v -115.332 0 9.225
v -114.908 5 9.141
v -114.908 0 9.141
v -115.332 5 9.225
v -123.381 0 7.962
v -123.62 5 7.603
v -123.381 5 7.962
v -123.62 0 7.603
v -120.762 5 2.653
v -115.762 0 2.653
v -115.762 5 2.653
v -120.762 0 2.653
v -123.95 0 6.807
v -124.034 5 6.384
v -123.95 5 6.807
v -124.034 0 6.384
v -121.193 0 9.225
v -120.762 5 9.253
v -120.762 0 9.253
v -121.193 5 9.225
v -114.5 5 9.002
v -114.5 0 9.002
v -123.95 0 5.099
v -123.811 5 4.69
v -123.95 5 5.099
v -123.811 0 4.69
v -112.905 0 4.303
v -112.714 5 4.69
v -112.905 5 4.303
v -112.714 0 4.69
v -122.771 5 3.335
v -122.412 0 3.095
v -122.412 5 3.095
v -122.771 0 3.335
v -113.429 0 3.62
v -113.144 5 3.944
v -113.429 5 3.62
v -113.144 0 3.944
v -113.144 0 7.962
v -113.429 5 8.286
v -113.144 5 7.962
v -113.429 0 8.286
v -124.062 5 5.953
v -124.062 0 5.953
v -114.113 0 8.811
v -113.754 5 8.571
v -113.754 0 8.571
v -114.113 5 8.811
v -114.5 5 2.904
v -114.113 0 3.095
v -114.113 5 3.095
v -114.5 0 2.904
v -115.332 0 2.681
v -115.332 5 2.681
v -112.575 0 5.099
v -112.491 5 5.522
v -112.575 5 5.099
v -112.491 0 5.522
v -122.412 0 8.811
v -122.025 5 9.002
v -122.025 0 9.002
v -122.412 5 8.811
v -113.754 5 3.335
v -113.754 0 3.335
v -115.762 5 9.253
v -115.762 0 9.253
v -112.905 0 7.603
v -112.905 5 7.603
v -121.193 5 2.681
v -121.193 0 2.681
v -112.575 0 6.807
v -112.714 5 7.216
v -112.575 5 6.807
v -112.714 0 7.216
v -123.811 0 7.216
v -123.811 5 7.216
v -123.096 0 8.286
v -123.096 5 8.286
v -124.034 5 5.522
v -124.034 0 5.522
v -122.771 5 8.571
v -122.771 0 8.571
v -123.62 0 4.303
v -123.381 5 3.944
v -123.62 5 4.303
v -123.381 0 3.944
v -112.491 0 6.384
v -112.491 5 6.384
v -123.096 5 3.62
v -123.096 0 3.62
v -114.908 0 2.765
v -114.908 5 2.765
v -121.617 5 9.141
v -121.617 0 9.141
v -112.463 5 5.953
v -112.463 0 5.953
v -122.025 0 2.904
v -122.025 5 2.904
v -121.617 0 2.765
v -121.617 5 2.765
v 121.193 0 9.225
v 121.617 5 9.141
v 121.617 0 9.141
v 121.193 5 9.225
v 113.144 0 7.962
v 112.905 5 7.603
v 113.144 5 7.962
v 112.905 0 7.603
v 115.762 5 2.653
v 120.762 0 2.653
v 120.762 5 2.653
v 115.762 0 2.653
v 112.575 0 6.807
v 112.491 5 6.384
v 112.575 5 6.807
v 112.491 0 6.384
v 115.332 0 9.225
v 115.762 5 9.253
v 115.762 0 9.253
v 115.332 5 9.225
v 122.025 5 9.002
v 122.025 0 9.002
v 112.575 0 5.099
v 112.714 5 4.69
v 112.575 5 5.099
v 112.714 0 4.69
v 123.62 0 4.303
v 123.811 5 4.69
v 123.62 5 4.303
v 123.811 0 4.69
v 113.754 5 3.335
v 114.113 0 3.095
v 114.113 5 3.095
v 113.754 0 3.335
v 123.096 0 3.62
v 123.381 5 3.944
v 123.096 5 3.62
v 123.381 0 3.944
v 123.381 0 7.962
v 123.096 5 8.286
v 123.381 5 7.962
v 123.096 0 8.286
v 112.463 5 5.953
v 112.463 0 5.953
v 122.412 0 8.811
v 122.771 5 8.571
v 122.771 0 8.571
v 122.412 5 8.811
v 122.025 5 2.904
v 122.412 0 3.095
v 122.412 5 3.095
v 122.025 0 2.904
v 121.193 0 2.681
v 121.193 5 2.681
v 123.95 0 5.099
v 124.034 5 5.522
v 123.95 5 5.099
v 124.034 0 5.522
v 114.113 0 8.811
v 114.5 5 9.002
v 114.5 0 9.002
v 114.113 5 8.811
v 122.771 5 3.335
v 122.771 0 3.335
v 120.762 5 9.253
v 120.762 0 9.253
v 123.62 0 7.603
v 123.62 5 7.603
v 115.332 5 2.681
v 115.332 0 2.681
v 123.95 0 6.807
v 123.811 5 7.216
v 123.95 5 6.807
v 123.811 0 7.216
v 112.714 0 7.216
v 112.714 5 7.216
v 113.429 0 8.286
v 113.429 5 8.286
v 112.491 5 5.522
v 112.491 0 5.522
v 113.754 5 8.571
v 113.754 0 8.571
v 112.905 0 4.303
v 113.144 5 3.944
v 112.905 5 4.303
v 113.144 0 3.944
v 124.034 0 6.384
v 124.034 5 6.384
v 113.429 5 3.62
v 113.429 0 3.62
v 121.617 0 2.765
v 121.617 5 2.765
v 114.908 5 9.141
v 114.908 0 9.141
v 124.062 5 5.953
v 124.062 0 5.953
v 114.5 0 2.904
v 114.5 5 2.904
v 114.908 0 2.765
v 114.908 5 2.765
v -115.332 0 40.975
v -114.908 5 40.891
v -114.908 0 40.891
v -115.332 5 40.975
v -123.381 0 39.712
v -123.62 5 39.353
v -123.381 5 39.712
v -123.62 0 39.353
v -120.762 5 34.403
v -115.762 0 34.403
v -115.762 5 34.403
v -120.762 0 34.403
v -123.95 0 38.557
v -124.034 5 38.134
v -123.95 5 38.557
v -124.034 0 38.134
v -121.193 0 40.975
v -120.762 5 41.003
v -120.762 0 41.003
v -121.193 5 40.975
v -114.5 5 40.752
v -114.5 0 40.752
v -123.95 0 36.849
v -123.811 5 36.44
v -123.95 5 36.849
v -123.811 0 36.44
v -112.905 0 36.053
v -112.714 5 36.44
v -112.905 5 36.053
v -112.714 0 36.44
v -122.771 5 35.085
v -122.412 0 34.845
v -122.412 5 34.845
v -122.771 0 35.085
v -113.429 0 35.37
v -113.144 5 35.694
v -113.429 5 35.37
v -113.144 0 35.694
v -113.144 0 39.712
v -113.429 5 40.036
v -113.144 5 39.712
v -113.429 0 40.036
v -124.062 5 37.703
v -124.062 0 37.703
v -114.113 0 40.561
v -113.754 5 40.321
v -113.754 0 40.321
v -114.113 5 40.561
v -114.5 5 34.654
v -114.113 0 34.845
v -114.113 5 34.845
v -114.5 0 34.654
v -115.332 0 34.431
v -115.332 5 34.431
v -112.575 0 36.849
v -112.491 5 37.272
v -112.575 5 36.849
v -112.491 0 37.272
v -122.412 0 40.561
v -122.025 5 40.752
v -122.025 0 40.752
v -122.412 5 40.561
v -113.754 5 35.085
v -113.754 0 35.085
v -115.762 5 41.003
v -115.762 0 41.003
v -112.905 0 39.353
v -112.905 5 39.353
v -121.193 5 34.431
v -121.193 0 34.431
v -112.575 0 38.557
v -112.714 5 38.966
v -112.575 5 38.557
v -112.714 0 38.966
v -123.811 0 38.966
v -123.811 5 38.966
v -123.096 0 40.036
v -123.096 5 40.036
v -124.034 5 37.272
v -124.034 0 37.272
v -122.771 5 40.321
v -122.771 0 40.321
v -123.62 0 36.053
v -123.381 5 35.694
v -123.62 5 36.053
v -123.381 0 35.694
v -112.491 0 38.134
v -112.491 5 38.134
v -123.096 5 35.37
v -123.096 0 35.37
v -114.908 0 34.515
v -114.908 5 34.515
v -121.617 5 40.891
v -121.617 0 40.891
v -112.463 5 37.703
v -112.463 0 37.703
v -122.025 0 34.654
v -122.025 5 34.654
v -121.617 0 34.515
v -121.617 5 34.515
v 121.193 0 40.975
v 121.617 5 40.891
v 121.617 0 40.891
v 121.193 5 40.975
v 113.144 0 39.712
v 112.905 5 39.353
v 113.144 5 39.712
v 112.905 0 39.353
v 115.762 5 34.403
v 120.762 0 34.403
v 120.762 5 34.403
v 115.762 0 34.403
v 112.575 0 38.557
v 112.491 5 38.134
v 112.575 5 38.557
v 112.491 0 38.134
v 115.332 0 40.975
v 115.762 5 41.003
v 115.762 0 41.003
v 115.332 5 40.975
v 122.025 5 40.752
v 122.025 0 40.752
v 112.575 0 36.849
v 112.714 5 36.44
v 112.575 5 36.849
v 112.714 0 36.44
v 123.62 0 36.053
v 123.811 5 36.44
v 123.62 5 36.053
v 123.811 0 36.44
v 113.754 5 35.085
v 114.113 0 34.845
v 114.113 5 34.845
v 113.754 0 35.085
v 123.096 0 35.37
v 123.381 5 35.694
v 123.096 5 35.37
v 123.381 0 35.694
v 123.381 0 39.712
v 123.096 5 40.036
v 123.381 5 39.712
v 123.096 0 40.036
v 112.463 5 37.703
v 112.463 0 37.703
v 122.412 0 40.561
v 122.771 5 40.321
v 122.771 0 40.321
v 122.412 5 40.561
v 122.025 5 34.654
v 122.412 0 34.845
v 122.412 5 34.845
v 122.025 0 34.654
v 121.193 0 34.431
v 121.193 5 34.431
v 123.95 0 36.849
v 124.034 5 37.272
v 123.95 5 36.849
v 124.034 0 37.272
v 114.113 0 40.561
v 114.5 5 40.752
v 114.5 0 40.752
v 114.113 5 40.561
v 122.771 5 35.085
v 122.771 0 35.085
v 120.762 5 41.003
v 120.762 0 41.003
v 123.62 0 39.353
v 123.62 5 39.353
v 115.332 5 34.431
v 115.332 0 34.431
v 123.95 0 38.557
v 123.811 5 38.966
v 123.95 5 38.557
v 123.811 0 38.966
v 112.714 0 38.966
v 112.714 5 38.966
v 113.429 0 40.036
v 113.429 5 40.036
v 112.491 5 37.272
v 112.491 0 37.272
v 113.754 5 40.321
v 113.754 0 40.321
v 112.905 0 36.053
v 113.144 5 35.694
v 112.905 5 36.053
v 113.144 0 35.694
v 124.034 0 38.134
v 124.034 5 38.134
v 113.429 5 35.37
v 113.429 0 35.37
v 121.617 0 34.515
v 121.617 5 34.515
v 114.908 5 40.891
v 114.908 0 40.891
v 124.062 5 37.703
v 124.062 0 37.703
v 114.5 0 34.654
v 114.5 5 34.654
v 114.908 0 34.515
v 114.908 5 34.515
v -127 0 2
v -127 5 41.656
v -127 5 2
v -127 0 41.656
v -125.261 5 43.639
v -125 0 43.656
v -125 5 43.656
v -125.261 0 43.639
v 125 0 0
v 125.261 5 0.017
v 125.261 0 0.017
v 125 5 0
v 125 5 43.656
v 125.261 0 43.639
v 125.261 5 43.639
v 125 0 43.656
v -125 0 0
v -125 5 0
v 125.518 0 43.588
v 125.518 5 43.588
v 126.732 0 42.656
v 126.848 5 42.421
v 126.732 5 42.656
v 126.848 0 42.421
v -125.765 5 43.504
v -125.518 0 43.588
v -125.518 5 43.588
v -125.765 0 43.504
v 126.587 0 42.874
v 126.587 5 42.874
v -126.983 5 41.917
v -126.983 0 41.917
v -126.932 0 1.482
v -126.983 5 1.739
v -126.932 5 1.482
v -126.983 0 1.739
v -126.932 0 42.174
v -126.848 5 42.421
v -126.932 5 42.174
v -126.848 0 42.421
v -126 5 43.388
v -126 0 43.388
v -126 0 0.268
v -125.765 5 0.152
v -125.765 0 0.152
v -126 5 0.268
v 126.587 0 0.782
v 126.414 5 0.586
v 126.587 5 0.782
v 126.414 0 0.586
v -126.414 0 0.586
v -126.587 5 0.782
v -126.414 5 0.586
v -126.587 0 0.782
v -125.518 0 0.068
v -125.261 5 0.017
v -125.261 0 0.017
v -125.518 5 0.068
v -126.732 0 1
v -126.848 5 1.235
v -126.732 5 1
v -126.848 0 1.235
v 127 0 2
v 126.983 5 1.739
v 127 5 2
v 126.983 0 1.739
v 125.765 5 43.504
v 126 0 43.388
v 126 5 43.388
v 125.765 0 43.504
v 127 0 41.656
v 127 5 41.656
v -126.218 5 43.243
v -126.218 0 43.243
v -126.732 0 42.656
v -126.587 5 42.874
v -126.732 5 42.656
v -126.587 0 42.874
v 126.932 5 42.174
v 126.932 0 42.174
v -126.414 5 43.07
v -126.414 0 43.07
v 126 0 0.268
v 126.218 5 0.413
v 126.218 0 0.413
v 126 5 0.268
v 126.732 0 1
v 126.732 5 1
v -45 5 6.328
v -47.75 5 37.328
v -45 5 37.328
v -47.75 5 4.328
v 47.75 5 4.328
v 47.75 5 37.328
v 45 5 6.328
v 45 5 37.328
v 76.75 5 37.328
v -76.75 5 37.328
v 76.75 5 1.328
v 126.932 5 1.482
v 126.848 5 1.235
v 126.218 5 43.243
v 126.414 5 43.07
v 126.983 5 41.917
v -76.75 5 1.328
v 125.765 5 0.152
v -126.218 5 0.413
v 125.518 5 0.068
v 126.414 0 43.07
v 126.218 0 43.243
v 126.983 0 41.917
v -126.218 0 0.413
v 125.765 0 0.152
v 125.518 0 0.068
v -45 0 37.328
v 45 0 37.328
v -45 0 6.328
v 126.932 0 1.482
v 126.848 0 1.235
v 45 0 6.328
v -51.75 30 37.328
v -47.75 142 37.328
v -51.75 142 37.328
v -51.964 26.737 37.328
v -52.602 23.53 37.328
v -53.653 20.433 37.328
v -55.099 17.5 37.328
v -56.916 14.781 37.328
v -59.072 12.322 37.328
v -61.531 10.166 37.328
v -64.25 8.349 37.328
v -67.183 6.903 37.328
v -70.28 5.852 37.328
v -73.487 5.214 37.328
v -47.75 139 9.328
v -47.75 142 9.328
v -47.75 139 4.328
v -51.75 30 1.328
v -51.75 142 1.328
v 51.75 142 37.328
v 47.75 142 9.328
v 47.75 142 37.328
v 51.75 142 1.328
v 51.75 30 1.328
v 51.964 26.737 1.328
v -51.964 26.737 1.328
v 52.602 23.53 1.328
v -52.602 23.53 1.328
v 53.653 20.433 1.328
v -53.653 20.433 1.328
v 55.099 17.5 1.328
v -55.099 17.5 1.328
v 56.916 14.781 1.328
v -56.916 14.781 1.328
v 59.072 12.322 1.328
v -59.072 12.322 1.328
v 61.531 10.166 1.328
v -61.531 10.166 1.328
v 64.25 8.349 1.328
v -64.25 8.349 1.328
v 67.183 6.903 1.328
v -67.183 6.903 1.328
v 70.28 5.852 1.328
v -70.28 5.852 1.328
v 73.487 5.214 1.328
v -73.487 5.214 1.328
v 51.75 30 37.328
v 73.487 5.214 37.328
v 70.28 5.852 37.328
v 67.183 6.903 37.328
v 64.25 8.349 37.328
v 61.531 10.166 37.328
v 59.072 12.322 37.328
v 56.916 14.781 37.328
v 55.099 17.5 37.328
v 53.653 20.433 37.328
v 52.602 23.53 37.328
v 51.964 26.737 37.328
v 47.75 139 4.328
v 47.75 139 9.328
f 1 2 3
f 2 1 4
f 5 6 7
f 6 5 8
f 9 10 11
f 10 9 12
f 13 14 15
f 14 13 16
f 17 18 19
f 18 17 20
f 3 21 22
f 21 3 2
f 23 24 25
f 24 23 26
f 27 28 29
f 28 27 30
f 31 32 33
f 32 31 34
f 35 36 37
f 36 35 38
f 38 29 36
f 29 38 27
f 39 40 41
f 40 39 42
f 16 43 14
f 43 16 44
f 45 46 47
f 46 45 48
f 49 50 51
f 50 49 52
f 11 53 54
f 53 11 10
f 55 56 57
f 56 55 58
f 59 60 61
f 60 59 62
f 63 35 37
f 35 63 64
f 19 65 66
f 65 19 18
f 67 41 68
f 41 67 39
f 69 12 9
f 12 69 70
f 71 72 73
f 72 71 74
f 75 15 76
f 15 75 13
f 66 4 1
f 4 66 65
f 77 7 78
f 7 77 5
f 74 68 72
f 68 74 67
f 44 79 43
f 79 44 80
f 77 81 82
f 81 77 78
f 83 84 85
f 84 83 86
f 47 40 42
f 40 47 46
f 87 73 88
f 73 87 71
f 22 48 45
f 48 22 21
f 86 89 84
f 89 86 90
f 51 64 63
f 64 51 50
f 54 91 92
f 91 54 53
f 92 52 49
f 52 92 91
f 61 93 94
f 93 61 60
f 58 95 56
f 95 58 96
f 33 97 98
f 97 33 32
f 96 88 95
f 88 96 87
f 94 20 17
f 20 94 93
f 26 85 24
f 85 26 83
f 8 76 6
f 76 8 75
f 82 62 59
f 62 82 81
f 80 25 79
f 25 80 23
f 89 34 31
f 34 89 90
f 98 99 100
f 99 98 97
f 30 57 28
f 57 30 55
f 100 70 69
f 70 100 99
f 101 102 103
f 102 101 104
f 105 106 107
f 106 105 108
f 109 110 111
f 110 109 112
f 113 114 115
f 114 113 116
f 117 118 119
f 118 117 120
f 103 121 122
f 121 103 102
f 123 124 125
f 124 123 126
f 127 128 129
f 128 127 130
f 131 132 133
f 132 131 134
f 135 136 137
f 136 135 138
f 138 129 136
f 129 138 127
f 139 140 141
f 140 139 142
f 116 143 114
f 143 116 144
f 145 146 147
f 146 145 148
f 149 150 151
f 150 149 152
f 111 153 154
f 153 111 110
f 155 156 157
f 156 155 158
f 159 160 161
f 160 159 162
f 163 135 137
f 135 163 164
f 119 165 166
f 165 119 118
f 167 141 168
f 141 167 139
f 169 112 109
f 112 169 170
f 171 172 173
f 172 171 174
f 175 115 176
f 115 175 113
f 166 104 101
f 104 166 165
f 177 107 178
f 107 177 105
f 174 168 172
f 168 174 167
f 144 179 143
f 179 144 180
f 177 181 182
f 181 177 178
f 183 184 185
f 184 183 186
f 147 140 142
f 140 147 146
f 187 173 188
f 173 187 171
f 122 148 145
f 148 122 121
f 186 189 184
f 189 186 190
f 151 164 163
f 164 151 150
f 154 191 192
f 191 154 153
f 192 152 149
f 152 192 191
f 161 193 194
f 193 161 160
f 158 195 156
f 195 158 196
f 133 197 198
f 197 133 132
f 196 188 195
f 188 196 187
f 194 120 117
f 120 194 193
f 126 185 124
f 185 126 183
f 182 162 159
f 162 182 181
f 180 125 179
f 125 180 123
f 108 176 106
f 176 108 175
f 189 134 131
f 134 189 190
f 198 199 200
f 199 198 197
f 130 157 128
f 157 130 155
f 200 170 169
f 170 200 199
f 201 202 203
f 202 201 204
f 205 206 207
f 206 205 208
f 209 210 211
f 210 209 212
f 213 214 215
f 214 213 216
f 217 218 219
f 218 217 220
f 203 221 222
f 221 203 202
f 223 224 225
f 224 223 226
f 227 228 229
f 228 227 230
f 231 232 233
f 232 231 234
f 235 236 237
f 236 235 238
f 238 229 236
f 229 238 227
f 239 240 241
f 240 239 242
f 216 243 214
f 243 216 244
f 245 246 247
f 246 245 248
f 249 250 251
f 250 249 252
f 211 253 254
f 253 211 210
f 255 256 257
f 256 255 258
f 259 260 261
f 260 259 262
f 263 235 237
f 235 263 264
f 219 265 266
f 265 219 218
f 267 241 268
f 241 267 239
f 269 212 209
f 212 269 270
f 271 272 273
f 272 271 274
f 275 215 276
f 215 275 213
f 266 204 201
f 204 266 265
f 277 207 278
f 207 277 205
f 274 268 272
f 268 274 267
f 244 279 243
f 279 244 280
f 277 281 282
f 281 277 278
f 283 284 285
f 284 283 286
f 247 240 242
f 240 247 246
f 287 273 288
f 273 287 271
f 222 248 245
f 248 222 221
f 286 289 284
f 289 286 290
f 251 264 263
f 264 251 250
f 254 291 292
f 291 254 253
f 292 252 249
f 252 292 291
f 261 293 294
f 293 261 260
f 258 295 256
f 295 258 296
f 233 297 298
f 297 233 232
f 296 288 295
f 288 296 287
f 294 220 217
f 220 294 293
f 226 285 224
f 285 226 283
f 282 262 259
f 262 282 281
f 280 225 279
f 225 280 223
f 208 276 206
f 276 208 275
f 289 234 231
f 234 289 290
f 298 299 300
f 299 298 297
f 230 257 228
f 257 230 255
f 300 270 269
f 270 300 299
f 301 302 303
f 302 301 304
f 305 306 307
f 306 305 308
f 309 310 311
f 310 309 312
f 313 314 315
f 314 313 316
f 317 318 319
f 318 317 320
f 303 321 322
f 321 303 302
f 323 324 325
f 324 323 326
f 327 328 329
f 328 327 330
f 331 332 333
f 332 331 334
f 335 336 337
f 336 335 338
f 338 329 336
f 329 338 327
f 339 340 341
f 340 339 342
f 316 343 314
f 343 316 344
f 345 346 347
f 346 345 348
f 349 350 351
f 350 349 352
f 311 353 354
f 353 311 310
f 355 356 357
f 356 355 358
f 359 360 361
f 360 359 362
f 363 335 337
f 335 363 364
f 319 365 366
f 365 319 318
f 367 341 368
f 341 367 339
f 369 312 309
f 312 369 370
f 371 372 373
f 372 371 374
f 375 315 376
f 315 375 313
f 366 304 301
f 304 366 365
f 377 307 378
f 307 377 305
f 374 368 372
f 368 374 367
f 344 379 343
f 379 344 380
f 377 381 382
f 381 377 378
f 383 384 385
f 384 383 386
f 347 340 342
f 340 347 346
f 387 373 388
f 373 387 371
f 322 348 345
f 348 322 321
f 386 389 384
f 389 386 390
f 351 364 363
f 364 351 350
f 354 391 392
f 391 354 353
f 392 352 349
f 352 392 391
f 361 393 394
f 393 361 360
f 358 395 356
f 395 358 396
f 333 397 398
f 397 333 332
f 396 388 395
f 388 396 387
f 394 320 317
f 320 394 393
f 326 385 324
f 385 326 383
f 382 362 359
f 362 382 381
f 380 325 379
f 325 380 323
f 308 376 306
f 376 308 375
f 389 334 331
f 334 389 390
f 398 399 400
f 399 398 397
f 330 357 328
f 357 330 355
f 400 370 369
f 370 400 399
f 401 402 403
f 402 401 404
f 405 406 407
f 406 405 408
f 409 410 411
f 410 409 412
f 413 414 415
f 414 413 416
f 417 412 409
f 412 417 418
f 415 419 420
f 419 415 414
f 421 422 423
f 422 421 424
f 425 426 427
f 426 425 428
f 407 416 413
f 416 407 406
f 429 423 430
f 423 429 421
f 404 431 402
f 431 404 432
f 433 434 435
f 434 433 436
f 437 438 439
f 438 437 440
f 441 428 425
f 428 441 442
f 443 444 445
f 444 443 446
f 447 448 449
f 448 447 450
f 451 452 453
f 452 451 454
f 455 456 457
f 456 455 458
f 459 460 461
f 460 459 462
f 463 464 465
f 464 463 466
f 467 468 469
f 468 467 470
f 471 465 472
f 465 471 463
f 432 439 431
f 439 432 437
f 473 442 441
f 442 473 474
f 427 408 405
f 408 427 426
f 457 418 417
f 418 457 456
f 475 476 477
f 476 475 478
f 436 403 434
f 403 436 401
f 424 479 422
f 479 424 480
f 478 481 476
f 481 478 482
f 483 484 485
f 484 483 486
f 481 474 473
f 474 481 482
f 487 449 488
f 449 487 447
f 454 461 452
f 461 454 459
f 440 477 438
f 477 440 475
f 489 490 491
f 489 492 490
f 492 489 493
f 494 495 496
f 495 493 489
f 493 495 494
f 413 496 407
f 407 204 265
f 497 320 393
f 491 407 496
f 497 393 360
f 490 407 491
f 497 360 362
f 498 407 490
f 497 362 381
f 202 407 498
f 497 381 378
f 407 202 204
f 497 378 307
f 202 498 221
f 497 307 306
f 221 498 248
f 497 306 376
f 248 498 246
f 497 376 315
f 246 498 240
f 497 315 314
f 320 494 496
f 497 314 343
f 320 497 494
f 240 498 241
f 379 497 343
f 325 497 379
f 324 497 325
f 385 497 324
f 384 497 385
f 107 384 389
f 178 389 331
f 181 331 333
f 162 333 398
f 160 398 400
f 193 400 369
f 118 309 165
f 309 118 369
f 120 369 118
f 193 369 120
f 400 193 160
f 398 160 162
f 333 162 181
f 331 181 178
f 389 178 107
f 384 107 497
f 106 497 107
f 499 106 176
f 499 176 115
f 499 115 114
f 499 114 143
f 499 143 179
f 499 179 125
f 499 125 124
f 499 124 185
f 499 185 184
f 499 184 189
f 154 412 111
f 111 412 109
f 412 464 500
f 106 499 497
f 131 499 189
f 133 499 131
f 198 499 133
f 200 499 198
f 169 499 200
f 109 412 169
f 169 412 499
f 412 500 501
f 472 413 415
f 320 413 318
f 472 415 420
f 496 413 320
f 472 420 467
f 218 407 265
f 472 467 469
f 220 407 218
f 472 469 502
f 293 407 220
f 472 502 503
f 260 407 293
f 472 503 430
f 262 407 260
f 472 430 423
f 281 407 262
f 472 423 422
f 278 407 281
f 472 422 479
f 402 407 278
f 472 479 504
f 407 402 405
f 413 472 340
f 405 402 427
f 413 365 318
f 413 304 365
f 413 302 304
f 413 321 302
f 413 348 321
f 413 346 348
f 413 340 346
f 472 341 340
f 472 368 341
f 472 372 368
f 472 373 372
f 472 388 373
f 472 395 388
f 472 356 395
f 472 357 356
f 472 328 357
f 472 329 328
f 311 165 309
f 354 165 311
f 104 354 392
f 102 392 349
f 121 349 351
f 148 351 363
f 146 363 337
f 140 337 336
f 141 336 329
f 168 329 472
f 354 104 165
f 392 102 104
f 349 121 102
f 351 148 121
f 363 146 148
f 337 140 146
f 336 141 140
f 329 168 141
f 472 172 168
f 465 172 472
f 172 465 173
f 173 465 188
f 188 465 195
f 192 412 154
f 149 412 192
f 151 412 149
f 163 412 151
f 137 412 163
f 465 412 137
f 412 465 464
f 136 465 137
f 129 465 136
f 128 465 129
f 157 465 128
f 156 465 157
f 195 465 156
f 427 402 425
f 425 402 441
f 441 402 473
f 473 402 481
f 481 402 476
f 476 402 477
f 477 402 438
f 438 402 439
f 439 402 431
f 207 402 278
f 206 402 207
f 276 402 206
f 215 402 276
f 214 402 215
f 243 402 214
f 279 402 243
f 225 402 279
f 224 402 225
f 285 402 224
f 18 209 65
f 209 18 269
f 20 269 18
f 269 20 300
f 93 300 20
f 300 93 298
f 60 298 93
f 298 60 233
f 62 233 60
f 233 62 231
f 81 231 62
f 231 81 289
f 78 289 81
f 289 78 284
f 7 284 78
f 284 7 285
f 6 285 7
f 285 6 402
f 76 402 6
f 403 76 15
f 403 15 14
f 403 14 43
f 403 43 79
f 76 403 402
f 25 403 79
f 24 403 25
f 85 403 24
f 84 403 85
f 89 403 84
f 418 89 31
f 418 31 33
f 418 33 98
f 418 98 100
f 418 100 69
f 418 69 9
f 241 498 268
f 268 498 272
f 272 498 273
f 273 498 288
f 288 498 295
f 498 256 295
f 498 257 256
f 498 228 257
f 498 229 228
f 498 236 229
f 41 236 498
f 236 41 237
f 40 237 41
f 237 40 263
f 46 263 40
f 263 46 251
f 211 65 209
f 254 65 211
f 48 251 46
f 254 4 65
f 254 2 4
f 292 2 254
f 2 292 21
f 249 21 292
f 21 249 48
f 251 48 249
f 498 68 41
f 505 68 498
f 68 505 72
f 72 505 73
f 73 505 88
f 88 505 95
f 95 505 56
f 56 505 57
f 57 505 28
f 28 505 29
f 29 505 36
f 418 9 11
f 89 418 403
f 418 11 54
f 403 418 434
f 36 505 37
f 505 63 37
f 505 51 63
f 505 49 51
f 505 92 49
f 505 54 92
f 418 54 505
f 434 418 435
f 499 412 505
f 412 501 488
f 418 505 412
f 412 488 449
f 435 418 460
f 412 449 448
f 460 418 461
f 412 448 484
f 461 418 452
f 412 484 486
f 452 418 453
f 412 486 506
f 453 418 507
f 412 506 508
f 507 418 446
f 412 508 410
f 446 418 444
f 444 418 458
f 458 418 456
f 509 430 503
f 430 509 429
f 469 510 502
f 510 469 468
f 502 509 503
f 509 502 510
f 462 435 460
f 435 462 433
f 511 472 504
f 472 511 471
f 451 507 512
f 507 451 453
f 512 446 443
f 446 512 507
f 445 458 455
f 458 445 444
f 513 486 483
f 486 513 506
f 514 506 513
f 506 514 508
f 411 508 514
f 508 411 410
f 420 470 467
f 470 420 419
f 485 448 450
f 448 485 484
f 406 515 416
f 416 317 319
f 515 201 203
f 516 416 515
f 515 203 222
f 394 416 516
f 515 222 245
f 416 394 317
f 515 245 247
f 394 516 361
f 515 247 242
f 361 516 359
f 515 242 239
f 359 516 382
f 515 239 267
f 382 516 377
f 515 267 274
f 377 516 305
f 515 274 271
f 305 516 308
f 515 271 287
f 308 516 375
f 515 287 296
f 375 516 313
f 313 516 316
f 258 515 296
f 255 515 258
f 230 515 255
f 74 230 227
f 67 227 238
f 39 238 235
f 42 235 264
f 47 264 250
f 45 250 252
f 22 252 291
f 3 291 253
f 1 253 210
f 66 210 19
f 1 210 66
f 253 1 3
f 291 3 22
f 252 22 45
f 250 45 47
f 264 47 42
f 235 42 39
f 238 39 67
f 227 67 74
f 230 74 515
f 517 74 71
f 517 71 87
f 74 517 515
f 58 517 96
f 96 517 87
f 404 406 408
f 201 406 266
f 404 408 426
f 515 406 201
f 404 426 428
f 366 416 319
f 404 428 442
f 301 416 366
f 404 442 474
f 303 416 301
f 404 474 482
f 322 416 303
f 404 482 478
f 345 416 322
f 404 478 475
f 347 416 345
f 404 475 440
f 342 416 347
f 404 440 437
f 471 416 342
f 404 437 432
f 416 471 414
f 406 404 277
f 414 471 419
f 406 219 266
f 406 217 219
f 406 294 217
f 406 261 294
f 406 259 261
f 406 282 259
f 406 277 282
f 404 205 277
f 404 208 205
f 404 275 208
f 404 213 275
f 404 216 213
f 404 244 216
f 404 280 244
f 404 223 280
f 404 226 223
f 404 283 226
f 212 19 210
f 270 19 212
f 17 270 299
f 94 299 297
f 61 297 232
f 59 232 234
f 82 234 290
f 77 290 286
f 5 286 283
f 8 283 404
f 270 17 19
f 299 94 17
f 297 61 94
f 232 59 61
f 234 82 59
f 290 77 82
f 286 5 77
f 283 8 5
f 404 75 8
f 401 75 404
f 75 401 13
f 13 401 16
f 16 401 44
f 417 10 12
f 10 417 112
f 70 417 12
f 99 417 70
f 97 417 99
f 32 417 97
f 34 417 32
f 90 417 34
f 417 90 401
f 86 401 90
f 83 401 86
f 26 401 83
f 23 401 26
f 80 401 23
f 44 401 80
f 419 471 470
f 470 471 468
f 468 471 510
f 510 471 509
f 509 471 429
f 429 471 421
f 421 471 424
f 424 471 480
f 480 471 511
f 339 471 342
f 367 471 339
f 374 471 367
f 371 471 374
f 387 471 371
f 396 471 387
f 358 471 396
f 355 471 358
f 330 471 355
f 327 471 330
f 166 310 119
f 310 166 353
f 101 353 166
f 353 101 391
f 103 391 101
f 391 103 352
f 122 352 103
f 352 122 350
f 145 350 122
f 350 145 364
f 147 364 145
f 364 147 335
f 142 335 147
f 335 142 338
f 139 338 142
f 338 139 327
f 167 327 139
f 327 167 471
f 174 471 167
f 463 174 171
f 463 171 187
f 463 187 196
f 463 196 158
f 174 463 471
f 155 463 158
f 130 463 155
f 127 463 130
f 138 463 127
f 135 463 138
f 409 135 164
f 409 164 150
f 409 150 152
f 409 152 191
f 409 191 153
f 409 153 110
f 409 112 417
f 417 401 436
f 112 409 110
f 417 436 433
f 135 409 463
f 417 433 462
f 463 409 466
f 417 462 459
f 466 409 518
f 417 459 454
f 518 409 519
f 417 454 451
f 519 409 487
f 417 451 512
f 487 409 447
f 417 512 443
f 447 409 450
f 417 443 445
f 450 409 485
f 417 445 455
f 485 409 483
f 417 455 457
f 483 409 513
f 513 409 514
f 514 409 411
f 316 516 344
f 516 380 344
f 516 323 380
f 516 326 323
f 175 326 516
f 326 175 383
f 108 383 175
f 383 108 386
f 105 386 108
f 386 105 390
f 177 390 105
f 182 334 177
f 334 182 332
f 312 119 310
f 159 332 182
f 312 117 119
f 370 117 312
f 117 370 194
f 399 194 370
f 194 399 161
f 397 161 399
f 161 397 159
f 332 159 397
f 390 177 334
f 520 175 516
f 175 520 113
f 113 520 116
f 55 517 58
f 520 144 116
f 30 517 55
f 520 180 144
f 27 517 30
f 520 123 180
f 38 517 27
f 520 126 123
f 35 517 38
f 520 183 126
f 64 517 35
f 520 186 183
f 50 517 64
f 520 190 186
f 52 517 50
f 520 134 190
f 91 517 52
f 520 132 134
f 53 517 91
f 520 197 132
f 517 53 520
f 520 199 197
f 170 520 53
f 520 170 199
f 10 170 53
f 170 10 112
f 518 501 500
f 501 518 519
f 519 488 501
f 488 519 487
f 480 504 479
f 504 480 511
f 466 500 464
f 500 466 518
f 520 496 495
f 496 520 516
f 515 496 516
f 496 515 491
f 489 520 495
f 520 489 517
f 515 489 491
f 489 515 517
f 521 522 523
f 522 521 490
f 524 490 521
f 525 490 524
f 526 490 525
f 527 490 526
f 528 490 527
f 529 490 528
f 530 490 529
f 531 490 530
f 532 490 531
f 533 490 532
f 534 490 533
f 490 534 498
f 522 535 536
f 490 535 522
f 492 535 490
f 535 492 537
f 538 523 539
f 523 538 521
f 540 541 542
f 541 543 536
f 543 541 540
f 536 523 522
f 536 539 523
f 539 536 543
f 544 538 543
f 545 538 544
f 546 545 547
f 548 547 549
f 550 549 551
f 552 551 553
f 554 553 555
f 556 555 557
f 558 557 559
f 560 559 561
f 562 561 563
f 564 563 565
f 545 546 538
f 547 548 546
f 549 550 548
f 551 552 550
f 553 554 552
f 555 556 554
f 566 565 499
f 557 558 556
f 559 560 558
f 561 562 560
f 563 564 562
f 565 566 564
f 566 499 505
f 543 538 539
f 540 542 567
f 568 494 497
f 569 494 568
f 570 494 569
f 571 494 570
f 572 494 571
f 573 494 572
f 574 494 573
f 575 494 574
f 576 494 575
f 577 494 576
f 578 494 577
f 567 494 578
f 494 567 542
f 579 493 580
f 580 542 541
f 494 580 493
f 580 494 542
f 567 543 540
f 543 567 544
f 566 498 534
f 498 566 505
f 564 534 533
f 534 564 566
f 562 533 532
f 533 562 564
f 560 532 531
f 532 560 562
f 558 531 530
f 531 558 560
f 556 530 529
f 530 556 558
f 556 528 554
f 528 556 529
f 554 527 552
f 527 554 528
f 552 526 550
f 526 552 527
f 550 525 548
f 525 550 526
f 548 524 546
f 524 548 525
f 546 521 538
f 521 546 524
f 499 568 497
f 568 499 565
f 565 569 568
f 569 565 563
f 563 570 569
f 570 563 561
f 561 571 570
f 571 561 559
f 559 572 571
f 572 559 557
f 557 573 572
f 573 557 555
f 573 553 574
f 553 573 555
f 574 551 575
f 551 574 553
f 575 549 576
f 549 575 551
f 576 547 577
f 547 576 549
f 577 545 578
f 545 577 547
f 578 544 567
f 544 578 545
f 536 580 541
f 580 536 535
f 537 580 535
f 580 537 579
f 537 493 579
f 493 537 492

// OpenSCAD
// Mounting bracket for an SDRplay RSPdx in a 10" benchtop rack, 1U.
// Geometry comes from ../lib/rack10.scad; this file only holds the RSPdx numbers.
//
//   * Centred on a 1U front panel, antenna connectors (SMA A, SMA B, BNC C)
//     facing forward through the aperture, USB-B at the back.
//   * Aperture 2 mm smaller than the unit on every side.
//   * Shelf with side fins (the RSPdx has no side vents) and a low fixed lip
//     across the rear of the shelf as the stopper. The unit is dropped in from
//     above and lifted straight out; the lip is low enough to clear the USB socket.
//
// Dimensions: the RSPdx datasheet (RSPdxDatasheetV1.0.pdf) says 113 x 94 x 35 mm,
// 315 g. SDRdx (the spec in this directory) says 133 x 94 x 35 mm. The 94 mm
// connector face is the front, so width = 94. The depth below follows the
// datasheet; measure the unit and change unit_d if it really is 133 mm.
//
// The unit is 35 mm tall, which leaves only 4.3 mm under it in a 1U panel, so the
// shelf is 3 mm thick and the side fins do not extend below the shelf.
//
// Print with the front panel face down on the bed (print_orientation = true).

use <../lib/rack10.scad>

/* [RSPdx] */
unit_w = 94;                // connector face, becomes the front
unit_d = 133;               // datasheet; SDRdx spec says 133 - measure!
unit_h = 35;

/* [Bracket] */
rack_u = 1;
lip = 2;                    // panel overlaps the unit by this much on each side
side_clear = 0.75;          // clearance between unit and each side wall
rear_clear = 1.0;           // clearance between unit and the rear stop
shelf_t = 3;                // shelf thickness (only 4.3 mm available under the unit)
wall_t = 4;                 // side wall thickness
wall_above_shelf = 33;      // side wall height above the shelf top
wall_bottom = 0;            // clamped to the shelf bottom by the library
fillet_r = 25;               // fillet between the outside of each side wall and the panel (0: none)
rear_stop_t = 3;            // rear lip thickness
rear_stop_h = 5;            // rear lip height above the shelf (0 for none)

/* [Rendering] */
print_orientation = false;  // true: lay the bracket with the front panel on the bed
show_unit = false;          // ghost of the RSPdx for checking fit
$fn = 48;

unit = [unit_w, unit_d, unit_h];

print_oriented(print_orientation) {
    shelf_bracket(unit, rack_u = rack_u, lip = lip,
                  side_clear = side_clear, rear_clear = rear_clear,
                  shelf_t = shelf_t, wall_t = wall_t,
                  wall_above_shelf = wall_above_shelf, wall_bottom = wall_bottom,
                  rear_stop_t = rear_stop_t, rear_stop_h = rear_stop_h,
                  fillet_r = fillet_r);
    if (show_unit) unit_ghost(unit, rack_u);
}
